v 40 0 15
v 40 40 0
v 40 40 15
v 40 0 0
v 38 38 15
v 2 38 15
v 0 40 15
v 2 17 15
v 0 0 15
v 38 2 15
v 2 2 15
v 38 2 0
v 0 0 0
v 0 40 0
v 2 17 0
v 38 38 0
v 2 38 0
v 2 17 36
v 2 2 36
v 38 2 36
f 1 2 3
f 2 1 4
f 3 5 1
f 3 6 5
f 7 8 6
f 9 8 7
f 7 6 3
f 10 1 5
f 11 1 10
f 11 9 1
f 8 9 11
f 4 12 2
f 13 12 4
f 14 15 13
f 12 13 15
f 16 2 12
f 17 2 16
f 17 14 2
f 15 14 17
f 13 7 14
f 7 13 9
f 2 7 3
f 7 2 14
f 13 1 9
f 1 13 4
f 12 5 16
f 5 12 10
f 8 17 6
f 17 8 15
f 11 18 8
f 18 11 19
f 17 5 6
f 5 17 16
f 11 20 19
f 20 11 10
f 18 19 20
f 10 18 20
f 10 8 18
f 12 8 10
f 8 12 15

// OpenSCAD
// Parameters
base_size = 40;         // Outer width and depth of the square base
wall_thickness = 2;     // Thickness of the walls
base_height = 15;       // Height of the square base shell
ramp_height = base_height; // Height of the ramp (same as shell height)

// Module: Square Base Shell
module square_base_shell() {
    difference() {
        // Outer box
        cube([base_size, base_size, base_height], center = false);
        // Inner hollow
        translate([wall_thickness, wall_thickness, 0])
            cube([base_size - 2*wall_thickness, base_size - 2*wall_thickness, base_height], center = false);
    }
}

// Module: Internal Triangular Ramp
module internal_triangular_ramp() {
    // Create a right triangular prism using linear_extrude
    translate([wall_thickness, wall_thickness, 0])
        linear_extrude(height = base_size - 2*wall_thickness)
            polygon(points=[[0,0], [base_size - 2*wall_thickness, 0], [0, ramp_height]]);
}

// Assemble the model
union() {
    square_base_shell();
    internal_triangular_ramp();
}
